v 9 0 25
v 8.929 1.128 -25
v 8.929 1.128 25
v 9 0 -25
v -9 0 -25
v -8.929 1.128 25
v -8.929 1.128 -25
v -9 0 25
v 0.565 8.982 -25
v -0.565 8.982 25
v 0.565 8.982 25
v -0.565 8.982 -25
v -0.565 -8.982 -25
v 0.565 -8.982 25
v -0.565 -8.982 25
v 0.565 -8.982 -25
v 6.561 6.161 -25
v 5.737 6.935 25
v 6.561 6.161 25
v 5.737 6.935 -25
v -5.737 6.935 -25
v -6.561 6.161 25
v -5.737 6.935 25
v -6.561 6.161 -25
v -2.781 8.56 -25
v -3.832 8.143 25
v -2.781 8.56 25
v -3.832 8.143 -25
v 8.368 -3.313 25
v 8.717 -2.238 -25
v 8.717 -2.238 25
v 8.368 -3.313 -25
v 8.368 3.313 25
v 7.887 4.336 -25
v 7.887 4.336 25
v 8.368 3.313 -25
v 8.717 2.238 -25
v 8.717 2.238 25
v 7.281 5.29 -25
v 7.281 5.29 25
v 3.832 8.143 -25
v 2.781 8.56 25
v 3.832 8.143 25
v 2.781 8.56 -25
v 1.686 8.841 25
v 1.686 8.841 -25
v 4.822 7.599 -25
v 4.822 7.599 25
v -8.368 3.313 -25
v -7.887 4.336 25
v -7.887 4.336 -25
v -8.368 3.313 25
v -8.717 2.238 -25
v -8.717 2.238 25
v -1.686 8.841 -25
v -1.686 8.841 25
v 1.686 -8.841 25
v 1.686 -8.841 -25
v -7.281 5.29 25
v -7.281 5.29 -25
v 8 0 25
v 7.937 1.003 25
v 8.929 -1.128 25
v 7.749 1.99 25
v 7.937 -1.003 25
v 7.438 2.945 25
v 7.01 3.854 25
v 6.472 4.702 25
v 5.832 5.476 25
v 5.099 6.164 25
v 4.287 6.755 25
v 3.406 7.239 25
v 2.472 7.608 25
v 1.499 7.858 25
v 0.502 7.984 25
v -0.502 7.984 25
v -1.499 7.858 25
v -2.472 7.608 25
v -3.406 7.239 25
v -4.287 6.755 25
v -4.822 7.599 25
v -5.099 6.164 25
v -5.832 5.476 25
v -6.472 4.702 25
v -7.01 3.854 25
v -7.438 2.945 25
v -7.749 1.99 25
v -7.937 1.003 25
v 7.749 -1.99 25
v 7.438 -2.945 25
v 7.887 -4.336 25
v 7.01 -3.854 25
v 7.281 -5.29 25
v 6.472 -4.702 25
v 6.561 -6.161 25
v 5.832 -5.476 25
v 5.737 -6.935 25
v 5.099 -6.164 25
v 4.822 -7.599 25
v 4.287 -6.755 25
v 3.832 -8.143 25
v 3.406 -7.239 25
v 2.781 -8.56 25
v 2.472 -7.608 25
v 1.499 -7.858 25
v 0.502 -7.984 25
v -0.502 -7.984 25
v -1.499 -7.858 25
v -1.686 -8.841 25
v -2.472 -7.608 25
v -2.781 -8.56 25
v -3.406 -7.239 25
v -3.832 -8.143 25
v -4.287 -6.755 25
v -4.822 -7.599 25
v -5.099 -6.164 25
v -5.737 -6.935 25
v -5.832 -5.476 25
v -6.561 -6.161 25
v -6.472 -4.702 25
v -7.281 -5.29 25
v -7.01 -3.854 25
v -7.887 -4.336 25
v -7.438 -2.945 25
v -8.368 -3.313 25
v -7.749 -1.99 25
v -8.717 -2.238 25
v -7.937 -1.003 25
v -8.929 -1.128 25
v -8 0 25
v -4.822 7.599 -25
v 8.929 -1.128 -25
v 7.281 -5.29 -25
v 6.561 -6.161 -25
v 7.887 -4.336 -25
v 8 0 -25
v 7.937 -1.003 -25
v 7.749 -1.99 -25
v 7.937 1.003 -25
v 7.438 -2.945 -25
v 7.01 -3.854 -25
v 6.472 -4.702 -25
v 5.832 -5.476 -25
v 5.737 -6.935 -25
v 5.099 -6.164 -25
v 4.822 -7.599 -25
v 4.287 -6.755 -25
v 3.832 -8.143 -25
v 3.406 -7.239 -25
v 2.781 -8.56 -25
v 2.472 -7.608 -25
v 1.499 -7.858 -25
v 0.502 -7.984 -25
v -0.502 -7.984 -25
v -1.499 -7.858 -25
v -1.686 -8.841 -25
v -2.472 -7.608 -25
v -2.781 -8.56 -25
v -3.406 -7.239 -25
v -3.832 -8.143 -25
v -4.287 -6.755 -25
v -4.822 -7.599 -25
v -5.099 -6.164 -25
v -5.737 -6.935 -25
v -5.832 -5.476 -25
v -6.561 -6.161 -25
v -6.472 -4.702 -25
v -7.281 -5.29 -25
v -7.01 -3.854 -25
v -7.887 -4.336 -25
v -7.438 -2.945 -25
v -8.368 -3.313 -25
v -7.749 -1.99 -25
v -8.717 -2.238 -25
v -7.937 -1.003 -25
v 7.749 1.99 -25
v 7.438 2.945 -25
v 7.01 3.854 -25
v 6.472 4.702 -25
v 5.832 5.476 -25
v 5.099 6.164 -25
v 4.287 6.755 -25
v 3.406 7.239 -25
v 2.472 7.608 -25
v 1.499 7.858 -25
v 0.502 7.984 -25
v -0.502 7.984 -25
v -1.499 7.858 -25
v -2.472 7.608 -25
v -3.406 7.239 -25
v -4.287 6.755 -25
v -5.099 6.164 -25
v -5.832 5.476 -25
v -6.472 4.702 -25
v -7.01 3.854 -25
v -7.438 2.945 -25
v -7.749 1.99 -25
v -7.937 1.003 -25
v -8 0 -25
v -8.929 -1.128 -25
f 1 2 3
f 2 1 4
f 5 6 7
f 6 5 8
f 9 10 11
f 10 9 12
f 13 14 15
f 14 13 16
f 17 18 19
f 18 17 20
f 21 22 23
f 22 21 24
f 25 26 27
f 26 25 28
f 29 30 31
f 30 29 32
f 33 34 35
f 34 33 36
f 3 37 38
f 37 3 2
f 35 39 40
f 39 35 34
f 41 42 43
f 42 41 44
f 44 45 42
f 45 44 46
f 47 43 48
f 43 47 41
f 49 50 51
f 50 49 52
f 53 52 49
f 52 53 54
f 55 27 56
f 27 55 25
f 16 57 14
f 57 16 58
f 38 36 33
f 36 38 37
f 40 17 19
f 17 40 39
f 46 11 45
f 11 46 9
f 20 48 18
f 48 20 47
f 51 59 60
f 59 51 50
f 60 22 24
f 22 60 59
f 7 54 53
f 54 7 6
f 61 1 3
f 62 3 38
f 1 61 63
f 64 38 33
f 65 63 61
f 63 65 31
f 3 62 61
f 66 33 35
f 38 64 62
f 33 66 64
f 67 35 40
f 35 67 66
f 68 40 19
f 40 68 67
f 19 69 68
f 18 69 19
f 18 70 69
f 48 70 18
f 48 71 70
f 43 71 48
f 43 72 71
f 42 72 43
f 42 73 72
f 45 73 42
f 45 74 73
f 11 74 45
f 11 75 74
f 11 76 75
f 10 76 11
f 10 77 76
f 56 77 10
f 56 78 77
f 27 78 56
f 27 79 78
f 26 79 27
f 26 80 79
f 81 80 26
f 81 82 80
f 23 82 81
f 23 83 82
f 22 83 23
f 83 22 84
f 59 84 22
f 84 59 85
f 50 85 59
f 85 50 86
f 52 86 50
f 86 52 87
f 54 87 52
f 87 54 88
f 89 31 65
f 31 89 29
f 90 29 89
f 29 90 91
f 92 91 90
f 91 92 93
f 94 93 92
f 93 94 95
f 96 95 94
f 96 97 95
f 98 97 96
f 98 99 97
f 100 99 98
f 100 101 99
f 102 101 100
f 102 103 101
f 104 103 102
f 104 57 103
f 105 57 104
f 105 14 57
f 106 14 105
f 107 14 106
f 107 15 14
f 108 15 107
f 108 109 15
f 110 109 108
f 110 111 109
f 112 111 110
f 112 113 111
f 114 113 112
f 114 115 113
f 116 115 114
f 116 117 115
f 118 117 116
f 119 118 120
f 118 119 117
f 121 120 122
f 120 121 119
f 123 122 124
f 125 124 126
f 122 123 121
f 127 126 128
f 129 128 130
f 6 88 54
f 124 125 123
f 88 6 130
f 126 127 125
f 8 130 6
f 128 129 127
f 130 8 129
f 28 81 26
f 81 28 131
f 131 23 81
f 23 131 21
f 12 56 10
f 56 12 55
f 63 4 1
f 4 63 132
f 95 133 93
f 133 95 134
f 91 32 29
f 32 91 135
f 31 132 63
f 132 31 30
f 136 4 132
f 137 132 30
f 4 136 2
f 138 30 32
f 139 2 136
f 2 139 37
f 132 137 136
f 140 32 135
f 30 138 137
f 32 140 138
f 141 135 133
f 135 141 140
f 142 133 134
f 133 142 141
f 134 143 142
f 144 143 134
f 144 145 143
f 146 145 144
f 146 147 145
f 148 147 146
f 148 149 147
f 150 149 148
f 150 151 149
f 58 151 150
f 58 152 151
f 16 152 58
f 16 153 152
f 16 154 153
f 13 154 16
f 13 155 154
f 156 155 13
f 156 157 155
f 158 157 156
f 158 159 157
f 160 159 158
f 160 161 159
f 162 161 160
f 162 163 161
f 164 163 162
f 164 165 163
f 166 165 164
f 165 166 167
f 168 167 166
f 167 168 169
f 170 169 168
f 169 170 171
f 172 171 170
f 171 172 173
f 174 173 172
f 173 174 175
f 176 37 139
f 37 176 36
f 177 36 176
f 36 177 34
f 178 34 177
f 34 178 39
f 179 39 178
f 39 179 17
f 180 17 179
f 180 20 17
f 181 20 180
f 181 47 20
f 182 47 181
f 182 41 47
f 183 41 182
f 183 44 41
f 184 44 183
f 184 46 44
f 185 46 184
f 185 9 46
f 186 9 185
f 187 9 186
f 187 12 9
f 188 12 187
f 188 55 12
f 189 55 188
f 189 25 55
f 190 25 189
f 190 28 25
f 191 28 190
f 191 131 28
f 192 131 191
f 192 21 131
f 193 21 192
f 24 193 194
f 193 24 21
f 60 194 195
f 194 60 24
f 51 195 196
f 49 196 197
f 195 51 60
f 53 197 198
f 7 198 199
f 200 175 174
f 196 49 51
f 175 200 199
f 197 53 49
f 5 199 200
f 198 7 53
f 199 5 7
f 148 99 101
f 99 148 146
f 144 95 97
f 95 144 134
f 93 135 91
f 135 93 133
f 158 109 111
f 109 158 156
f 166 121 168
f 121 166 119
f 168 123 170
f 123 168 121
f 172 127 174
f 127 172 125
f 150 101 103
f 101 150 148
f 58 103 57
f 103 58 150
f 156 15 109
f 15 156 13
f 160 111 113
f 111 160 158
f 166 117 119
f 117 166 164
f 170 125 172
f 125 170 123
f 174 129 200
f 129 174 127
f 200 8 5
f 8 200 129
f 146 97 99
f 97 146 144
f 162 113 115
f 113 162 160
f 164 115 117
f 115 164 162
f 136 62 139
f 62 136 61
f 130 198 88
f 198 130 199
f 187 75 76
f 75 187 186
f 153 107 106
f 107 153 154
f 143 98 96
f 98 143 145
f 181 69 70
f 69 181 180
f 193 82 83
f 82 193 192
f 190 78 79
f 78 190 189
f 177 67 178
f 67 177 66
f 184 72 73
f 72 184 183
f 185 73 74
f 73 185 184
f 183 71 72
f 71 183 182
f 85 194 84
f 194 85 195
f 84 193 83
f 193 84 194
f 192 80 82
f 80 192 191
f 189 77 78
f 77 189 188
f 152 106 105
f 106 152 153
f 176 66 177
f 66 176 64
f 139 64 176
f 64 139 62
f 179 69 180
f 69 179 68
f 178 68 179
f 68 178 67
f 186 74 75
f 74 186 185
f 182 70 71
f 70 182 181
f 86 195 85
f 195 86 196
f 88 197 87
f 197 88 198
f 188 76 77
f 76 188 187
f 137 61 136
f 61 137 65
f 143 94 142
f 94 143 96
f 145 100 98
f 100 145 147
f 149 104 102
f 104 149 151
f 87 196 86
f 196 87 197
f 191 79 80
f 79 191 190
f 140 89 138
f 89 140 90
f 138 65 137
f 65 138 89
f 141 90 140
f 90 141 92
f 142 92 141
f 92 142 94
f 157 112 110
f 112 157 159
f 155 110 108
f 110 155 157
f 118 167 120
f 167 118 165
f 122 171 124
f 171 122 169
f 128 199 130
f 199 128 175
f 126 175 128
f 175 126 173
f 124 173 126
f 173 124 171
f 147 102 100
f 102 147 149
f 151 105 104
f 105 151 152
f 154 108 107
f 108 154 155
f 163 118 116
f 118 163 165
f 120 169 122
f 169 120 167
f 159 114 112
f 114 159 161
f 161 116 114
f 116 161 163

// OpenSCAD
$fn = 50;


difference() {
	union() {
		translate(v = [0, 0, -25.0000000000]) {
			cylinder(h = 50, r = 9.0000000000);
		}
	}
	union() {
		translate(v = [0, 0, -100.0000000000]) {
			cylinder(h = 200, r = 8);
		}
	}
}
